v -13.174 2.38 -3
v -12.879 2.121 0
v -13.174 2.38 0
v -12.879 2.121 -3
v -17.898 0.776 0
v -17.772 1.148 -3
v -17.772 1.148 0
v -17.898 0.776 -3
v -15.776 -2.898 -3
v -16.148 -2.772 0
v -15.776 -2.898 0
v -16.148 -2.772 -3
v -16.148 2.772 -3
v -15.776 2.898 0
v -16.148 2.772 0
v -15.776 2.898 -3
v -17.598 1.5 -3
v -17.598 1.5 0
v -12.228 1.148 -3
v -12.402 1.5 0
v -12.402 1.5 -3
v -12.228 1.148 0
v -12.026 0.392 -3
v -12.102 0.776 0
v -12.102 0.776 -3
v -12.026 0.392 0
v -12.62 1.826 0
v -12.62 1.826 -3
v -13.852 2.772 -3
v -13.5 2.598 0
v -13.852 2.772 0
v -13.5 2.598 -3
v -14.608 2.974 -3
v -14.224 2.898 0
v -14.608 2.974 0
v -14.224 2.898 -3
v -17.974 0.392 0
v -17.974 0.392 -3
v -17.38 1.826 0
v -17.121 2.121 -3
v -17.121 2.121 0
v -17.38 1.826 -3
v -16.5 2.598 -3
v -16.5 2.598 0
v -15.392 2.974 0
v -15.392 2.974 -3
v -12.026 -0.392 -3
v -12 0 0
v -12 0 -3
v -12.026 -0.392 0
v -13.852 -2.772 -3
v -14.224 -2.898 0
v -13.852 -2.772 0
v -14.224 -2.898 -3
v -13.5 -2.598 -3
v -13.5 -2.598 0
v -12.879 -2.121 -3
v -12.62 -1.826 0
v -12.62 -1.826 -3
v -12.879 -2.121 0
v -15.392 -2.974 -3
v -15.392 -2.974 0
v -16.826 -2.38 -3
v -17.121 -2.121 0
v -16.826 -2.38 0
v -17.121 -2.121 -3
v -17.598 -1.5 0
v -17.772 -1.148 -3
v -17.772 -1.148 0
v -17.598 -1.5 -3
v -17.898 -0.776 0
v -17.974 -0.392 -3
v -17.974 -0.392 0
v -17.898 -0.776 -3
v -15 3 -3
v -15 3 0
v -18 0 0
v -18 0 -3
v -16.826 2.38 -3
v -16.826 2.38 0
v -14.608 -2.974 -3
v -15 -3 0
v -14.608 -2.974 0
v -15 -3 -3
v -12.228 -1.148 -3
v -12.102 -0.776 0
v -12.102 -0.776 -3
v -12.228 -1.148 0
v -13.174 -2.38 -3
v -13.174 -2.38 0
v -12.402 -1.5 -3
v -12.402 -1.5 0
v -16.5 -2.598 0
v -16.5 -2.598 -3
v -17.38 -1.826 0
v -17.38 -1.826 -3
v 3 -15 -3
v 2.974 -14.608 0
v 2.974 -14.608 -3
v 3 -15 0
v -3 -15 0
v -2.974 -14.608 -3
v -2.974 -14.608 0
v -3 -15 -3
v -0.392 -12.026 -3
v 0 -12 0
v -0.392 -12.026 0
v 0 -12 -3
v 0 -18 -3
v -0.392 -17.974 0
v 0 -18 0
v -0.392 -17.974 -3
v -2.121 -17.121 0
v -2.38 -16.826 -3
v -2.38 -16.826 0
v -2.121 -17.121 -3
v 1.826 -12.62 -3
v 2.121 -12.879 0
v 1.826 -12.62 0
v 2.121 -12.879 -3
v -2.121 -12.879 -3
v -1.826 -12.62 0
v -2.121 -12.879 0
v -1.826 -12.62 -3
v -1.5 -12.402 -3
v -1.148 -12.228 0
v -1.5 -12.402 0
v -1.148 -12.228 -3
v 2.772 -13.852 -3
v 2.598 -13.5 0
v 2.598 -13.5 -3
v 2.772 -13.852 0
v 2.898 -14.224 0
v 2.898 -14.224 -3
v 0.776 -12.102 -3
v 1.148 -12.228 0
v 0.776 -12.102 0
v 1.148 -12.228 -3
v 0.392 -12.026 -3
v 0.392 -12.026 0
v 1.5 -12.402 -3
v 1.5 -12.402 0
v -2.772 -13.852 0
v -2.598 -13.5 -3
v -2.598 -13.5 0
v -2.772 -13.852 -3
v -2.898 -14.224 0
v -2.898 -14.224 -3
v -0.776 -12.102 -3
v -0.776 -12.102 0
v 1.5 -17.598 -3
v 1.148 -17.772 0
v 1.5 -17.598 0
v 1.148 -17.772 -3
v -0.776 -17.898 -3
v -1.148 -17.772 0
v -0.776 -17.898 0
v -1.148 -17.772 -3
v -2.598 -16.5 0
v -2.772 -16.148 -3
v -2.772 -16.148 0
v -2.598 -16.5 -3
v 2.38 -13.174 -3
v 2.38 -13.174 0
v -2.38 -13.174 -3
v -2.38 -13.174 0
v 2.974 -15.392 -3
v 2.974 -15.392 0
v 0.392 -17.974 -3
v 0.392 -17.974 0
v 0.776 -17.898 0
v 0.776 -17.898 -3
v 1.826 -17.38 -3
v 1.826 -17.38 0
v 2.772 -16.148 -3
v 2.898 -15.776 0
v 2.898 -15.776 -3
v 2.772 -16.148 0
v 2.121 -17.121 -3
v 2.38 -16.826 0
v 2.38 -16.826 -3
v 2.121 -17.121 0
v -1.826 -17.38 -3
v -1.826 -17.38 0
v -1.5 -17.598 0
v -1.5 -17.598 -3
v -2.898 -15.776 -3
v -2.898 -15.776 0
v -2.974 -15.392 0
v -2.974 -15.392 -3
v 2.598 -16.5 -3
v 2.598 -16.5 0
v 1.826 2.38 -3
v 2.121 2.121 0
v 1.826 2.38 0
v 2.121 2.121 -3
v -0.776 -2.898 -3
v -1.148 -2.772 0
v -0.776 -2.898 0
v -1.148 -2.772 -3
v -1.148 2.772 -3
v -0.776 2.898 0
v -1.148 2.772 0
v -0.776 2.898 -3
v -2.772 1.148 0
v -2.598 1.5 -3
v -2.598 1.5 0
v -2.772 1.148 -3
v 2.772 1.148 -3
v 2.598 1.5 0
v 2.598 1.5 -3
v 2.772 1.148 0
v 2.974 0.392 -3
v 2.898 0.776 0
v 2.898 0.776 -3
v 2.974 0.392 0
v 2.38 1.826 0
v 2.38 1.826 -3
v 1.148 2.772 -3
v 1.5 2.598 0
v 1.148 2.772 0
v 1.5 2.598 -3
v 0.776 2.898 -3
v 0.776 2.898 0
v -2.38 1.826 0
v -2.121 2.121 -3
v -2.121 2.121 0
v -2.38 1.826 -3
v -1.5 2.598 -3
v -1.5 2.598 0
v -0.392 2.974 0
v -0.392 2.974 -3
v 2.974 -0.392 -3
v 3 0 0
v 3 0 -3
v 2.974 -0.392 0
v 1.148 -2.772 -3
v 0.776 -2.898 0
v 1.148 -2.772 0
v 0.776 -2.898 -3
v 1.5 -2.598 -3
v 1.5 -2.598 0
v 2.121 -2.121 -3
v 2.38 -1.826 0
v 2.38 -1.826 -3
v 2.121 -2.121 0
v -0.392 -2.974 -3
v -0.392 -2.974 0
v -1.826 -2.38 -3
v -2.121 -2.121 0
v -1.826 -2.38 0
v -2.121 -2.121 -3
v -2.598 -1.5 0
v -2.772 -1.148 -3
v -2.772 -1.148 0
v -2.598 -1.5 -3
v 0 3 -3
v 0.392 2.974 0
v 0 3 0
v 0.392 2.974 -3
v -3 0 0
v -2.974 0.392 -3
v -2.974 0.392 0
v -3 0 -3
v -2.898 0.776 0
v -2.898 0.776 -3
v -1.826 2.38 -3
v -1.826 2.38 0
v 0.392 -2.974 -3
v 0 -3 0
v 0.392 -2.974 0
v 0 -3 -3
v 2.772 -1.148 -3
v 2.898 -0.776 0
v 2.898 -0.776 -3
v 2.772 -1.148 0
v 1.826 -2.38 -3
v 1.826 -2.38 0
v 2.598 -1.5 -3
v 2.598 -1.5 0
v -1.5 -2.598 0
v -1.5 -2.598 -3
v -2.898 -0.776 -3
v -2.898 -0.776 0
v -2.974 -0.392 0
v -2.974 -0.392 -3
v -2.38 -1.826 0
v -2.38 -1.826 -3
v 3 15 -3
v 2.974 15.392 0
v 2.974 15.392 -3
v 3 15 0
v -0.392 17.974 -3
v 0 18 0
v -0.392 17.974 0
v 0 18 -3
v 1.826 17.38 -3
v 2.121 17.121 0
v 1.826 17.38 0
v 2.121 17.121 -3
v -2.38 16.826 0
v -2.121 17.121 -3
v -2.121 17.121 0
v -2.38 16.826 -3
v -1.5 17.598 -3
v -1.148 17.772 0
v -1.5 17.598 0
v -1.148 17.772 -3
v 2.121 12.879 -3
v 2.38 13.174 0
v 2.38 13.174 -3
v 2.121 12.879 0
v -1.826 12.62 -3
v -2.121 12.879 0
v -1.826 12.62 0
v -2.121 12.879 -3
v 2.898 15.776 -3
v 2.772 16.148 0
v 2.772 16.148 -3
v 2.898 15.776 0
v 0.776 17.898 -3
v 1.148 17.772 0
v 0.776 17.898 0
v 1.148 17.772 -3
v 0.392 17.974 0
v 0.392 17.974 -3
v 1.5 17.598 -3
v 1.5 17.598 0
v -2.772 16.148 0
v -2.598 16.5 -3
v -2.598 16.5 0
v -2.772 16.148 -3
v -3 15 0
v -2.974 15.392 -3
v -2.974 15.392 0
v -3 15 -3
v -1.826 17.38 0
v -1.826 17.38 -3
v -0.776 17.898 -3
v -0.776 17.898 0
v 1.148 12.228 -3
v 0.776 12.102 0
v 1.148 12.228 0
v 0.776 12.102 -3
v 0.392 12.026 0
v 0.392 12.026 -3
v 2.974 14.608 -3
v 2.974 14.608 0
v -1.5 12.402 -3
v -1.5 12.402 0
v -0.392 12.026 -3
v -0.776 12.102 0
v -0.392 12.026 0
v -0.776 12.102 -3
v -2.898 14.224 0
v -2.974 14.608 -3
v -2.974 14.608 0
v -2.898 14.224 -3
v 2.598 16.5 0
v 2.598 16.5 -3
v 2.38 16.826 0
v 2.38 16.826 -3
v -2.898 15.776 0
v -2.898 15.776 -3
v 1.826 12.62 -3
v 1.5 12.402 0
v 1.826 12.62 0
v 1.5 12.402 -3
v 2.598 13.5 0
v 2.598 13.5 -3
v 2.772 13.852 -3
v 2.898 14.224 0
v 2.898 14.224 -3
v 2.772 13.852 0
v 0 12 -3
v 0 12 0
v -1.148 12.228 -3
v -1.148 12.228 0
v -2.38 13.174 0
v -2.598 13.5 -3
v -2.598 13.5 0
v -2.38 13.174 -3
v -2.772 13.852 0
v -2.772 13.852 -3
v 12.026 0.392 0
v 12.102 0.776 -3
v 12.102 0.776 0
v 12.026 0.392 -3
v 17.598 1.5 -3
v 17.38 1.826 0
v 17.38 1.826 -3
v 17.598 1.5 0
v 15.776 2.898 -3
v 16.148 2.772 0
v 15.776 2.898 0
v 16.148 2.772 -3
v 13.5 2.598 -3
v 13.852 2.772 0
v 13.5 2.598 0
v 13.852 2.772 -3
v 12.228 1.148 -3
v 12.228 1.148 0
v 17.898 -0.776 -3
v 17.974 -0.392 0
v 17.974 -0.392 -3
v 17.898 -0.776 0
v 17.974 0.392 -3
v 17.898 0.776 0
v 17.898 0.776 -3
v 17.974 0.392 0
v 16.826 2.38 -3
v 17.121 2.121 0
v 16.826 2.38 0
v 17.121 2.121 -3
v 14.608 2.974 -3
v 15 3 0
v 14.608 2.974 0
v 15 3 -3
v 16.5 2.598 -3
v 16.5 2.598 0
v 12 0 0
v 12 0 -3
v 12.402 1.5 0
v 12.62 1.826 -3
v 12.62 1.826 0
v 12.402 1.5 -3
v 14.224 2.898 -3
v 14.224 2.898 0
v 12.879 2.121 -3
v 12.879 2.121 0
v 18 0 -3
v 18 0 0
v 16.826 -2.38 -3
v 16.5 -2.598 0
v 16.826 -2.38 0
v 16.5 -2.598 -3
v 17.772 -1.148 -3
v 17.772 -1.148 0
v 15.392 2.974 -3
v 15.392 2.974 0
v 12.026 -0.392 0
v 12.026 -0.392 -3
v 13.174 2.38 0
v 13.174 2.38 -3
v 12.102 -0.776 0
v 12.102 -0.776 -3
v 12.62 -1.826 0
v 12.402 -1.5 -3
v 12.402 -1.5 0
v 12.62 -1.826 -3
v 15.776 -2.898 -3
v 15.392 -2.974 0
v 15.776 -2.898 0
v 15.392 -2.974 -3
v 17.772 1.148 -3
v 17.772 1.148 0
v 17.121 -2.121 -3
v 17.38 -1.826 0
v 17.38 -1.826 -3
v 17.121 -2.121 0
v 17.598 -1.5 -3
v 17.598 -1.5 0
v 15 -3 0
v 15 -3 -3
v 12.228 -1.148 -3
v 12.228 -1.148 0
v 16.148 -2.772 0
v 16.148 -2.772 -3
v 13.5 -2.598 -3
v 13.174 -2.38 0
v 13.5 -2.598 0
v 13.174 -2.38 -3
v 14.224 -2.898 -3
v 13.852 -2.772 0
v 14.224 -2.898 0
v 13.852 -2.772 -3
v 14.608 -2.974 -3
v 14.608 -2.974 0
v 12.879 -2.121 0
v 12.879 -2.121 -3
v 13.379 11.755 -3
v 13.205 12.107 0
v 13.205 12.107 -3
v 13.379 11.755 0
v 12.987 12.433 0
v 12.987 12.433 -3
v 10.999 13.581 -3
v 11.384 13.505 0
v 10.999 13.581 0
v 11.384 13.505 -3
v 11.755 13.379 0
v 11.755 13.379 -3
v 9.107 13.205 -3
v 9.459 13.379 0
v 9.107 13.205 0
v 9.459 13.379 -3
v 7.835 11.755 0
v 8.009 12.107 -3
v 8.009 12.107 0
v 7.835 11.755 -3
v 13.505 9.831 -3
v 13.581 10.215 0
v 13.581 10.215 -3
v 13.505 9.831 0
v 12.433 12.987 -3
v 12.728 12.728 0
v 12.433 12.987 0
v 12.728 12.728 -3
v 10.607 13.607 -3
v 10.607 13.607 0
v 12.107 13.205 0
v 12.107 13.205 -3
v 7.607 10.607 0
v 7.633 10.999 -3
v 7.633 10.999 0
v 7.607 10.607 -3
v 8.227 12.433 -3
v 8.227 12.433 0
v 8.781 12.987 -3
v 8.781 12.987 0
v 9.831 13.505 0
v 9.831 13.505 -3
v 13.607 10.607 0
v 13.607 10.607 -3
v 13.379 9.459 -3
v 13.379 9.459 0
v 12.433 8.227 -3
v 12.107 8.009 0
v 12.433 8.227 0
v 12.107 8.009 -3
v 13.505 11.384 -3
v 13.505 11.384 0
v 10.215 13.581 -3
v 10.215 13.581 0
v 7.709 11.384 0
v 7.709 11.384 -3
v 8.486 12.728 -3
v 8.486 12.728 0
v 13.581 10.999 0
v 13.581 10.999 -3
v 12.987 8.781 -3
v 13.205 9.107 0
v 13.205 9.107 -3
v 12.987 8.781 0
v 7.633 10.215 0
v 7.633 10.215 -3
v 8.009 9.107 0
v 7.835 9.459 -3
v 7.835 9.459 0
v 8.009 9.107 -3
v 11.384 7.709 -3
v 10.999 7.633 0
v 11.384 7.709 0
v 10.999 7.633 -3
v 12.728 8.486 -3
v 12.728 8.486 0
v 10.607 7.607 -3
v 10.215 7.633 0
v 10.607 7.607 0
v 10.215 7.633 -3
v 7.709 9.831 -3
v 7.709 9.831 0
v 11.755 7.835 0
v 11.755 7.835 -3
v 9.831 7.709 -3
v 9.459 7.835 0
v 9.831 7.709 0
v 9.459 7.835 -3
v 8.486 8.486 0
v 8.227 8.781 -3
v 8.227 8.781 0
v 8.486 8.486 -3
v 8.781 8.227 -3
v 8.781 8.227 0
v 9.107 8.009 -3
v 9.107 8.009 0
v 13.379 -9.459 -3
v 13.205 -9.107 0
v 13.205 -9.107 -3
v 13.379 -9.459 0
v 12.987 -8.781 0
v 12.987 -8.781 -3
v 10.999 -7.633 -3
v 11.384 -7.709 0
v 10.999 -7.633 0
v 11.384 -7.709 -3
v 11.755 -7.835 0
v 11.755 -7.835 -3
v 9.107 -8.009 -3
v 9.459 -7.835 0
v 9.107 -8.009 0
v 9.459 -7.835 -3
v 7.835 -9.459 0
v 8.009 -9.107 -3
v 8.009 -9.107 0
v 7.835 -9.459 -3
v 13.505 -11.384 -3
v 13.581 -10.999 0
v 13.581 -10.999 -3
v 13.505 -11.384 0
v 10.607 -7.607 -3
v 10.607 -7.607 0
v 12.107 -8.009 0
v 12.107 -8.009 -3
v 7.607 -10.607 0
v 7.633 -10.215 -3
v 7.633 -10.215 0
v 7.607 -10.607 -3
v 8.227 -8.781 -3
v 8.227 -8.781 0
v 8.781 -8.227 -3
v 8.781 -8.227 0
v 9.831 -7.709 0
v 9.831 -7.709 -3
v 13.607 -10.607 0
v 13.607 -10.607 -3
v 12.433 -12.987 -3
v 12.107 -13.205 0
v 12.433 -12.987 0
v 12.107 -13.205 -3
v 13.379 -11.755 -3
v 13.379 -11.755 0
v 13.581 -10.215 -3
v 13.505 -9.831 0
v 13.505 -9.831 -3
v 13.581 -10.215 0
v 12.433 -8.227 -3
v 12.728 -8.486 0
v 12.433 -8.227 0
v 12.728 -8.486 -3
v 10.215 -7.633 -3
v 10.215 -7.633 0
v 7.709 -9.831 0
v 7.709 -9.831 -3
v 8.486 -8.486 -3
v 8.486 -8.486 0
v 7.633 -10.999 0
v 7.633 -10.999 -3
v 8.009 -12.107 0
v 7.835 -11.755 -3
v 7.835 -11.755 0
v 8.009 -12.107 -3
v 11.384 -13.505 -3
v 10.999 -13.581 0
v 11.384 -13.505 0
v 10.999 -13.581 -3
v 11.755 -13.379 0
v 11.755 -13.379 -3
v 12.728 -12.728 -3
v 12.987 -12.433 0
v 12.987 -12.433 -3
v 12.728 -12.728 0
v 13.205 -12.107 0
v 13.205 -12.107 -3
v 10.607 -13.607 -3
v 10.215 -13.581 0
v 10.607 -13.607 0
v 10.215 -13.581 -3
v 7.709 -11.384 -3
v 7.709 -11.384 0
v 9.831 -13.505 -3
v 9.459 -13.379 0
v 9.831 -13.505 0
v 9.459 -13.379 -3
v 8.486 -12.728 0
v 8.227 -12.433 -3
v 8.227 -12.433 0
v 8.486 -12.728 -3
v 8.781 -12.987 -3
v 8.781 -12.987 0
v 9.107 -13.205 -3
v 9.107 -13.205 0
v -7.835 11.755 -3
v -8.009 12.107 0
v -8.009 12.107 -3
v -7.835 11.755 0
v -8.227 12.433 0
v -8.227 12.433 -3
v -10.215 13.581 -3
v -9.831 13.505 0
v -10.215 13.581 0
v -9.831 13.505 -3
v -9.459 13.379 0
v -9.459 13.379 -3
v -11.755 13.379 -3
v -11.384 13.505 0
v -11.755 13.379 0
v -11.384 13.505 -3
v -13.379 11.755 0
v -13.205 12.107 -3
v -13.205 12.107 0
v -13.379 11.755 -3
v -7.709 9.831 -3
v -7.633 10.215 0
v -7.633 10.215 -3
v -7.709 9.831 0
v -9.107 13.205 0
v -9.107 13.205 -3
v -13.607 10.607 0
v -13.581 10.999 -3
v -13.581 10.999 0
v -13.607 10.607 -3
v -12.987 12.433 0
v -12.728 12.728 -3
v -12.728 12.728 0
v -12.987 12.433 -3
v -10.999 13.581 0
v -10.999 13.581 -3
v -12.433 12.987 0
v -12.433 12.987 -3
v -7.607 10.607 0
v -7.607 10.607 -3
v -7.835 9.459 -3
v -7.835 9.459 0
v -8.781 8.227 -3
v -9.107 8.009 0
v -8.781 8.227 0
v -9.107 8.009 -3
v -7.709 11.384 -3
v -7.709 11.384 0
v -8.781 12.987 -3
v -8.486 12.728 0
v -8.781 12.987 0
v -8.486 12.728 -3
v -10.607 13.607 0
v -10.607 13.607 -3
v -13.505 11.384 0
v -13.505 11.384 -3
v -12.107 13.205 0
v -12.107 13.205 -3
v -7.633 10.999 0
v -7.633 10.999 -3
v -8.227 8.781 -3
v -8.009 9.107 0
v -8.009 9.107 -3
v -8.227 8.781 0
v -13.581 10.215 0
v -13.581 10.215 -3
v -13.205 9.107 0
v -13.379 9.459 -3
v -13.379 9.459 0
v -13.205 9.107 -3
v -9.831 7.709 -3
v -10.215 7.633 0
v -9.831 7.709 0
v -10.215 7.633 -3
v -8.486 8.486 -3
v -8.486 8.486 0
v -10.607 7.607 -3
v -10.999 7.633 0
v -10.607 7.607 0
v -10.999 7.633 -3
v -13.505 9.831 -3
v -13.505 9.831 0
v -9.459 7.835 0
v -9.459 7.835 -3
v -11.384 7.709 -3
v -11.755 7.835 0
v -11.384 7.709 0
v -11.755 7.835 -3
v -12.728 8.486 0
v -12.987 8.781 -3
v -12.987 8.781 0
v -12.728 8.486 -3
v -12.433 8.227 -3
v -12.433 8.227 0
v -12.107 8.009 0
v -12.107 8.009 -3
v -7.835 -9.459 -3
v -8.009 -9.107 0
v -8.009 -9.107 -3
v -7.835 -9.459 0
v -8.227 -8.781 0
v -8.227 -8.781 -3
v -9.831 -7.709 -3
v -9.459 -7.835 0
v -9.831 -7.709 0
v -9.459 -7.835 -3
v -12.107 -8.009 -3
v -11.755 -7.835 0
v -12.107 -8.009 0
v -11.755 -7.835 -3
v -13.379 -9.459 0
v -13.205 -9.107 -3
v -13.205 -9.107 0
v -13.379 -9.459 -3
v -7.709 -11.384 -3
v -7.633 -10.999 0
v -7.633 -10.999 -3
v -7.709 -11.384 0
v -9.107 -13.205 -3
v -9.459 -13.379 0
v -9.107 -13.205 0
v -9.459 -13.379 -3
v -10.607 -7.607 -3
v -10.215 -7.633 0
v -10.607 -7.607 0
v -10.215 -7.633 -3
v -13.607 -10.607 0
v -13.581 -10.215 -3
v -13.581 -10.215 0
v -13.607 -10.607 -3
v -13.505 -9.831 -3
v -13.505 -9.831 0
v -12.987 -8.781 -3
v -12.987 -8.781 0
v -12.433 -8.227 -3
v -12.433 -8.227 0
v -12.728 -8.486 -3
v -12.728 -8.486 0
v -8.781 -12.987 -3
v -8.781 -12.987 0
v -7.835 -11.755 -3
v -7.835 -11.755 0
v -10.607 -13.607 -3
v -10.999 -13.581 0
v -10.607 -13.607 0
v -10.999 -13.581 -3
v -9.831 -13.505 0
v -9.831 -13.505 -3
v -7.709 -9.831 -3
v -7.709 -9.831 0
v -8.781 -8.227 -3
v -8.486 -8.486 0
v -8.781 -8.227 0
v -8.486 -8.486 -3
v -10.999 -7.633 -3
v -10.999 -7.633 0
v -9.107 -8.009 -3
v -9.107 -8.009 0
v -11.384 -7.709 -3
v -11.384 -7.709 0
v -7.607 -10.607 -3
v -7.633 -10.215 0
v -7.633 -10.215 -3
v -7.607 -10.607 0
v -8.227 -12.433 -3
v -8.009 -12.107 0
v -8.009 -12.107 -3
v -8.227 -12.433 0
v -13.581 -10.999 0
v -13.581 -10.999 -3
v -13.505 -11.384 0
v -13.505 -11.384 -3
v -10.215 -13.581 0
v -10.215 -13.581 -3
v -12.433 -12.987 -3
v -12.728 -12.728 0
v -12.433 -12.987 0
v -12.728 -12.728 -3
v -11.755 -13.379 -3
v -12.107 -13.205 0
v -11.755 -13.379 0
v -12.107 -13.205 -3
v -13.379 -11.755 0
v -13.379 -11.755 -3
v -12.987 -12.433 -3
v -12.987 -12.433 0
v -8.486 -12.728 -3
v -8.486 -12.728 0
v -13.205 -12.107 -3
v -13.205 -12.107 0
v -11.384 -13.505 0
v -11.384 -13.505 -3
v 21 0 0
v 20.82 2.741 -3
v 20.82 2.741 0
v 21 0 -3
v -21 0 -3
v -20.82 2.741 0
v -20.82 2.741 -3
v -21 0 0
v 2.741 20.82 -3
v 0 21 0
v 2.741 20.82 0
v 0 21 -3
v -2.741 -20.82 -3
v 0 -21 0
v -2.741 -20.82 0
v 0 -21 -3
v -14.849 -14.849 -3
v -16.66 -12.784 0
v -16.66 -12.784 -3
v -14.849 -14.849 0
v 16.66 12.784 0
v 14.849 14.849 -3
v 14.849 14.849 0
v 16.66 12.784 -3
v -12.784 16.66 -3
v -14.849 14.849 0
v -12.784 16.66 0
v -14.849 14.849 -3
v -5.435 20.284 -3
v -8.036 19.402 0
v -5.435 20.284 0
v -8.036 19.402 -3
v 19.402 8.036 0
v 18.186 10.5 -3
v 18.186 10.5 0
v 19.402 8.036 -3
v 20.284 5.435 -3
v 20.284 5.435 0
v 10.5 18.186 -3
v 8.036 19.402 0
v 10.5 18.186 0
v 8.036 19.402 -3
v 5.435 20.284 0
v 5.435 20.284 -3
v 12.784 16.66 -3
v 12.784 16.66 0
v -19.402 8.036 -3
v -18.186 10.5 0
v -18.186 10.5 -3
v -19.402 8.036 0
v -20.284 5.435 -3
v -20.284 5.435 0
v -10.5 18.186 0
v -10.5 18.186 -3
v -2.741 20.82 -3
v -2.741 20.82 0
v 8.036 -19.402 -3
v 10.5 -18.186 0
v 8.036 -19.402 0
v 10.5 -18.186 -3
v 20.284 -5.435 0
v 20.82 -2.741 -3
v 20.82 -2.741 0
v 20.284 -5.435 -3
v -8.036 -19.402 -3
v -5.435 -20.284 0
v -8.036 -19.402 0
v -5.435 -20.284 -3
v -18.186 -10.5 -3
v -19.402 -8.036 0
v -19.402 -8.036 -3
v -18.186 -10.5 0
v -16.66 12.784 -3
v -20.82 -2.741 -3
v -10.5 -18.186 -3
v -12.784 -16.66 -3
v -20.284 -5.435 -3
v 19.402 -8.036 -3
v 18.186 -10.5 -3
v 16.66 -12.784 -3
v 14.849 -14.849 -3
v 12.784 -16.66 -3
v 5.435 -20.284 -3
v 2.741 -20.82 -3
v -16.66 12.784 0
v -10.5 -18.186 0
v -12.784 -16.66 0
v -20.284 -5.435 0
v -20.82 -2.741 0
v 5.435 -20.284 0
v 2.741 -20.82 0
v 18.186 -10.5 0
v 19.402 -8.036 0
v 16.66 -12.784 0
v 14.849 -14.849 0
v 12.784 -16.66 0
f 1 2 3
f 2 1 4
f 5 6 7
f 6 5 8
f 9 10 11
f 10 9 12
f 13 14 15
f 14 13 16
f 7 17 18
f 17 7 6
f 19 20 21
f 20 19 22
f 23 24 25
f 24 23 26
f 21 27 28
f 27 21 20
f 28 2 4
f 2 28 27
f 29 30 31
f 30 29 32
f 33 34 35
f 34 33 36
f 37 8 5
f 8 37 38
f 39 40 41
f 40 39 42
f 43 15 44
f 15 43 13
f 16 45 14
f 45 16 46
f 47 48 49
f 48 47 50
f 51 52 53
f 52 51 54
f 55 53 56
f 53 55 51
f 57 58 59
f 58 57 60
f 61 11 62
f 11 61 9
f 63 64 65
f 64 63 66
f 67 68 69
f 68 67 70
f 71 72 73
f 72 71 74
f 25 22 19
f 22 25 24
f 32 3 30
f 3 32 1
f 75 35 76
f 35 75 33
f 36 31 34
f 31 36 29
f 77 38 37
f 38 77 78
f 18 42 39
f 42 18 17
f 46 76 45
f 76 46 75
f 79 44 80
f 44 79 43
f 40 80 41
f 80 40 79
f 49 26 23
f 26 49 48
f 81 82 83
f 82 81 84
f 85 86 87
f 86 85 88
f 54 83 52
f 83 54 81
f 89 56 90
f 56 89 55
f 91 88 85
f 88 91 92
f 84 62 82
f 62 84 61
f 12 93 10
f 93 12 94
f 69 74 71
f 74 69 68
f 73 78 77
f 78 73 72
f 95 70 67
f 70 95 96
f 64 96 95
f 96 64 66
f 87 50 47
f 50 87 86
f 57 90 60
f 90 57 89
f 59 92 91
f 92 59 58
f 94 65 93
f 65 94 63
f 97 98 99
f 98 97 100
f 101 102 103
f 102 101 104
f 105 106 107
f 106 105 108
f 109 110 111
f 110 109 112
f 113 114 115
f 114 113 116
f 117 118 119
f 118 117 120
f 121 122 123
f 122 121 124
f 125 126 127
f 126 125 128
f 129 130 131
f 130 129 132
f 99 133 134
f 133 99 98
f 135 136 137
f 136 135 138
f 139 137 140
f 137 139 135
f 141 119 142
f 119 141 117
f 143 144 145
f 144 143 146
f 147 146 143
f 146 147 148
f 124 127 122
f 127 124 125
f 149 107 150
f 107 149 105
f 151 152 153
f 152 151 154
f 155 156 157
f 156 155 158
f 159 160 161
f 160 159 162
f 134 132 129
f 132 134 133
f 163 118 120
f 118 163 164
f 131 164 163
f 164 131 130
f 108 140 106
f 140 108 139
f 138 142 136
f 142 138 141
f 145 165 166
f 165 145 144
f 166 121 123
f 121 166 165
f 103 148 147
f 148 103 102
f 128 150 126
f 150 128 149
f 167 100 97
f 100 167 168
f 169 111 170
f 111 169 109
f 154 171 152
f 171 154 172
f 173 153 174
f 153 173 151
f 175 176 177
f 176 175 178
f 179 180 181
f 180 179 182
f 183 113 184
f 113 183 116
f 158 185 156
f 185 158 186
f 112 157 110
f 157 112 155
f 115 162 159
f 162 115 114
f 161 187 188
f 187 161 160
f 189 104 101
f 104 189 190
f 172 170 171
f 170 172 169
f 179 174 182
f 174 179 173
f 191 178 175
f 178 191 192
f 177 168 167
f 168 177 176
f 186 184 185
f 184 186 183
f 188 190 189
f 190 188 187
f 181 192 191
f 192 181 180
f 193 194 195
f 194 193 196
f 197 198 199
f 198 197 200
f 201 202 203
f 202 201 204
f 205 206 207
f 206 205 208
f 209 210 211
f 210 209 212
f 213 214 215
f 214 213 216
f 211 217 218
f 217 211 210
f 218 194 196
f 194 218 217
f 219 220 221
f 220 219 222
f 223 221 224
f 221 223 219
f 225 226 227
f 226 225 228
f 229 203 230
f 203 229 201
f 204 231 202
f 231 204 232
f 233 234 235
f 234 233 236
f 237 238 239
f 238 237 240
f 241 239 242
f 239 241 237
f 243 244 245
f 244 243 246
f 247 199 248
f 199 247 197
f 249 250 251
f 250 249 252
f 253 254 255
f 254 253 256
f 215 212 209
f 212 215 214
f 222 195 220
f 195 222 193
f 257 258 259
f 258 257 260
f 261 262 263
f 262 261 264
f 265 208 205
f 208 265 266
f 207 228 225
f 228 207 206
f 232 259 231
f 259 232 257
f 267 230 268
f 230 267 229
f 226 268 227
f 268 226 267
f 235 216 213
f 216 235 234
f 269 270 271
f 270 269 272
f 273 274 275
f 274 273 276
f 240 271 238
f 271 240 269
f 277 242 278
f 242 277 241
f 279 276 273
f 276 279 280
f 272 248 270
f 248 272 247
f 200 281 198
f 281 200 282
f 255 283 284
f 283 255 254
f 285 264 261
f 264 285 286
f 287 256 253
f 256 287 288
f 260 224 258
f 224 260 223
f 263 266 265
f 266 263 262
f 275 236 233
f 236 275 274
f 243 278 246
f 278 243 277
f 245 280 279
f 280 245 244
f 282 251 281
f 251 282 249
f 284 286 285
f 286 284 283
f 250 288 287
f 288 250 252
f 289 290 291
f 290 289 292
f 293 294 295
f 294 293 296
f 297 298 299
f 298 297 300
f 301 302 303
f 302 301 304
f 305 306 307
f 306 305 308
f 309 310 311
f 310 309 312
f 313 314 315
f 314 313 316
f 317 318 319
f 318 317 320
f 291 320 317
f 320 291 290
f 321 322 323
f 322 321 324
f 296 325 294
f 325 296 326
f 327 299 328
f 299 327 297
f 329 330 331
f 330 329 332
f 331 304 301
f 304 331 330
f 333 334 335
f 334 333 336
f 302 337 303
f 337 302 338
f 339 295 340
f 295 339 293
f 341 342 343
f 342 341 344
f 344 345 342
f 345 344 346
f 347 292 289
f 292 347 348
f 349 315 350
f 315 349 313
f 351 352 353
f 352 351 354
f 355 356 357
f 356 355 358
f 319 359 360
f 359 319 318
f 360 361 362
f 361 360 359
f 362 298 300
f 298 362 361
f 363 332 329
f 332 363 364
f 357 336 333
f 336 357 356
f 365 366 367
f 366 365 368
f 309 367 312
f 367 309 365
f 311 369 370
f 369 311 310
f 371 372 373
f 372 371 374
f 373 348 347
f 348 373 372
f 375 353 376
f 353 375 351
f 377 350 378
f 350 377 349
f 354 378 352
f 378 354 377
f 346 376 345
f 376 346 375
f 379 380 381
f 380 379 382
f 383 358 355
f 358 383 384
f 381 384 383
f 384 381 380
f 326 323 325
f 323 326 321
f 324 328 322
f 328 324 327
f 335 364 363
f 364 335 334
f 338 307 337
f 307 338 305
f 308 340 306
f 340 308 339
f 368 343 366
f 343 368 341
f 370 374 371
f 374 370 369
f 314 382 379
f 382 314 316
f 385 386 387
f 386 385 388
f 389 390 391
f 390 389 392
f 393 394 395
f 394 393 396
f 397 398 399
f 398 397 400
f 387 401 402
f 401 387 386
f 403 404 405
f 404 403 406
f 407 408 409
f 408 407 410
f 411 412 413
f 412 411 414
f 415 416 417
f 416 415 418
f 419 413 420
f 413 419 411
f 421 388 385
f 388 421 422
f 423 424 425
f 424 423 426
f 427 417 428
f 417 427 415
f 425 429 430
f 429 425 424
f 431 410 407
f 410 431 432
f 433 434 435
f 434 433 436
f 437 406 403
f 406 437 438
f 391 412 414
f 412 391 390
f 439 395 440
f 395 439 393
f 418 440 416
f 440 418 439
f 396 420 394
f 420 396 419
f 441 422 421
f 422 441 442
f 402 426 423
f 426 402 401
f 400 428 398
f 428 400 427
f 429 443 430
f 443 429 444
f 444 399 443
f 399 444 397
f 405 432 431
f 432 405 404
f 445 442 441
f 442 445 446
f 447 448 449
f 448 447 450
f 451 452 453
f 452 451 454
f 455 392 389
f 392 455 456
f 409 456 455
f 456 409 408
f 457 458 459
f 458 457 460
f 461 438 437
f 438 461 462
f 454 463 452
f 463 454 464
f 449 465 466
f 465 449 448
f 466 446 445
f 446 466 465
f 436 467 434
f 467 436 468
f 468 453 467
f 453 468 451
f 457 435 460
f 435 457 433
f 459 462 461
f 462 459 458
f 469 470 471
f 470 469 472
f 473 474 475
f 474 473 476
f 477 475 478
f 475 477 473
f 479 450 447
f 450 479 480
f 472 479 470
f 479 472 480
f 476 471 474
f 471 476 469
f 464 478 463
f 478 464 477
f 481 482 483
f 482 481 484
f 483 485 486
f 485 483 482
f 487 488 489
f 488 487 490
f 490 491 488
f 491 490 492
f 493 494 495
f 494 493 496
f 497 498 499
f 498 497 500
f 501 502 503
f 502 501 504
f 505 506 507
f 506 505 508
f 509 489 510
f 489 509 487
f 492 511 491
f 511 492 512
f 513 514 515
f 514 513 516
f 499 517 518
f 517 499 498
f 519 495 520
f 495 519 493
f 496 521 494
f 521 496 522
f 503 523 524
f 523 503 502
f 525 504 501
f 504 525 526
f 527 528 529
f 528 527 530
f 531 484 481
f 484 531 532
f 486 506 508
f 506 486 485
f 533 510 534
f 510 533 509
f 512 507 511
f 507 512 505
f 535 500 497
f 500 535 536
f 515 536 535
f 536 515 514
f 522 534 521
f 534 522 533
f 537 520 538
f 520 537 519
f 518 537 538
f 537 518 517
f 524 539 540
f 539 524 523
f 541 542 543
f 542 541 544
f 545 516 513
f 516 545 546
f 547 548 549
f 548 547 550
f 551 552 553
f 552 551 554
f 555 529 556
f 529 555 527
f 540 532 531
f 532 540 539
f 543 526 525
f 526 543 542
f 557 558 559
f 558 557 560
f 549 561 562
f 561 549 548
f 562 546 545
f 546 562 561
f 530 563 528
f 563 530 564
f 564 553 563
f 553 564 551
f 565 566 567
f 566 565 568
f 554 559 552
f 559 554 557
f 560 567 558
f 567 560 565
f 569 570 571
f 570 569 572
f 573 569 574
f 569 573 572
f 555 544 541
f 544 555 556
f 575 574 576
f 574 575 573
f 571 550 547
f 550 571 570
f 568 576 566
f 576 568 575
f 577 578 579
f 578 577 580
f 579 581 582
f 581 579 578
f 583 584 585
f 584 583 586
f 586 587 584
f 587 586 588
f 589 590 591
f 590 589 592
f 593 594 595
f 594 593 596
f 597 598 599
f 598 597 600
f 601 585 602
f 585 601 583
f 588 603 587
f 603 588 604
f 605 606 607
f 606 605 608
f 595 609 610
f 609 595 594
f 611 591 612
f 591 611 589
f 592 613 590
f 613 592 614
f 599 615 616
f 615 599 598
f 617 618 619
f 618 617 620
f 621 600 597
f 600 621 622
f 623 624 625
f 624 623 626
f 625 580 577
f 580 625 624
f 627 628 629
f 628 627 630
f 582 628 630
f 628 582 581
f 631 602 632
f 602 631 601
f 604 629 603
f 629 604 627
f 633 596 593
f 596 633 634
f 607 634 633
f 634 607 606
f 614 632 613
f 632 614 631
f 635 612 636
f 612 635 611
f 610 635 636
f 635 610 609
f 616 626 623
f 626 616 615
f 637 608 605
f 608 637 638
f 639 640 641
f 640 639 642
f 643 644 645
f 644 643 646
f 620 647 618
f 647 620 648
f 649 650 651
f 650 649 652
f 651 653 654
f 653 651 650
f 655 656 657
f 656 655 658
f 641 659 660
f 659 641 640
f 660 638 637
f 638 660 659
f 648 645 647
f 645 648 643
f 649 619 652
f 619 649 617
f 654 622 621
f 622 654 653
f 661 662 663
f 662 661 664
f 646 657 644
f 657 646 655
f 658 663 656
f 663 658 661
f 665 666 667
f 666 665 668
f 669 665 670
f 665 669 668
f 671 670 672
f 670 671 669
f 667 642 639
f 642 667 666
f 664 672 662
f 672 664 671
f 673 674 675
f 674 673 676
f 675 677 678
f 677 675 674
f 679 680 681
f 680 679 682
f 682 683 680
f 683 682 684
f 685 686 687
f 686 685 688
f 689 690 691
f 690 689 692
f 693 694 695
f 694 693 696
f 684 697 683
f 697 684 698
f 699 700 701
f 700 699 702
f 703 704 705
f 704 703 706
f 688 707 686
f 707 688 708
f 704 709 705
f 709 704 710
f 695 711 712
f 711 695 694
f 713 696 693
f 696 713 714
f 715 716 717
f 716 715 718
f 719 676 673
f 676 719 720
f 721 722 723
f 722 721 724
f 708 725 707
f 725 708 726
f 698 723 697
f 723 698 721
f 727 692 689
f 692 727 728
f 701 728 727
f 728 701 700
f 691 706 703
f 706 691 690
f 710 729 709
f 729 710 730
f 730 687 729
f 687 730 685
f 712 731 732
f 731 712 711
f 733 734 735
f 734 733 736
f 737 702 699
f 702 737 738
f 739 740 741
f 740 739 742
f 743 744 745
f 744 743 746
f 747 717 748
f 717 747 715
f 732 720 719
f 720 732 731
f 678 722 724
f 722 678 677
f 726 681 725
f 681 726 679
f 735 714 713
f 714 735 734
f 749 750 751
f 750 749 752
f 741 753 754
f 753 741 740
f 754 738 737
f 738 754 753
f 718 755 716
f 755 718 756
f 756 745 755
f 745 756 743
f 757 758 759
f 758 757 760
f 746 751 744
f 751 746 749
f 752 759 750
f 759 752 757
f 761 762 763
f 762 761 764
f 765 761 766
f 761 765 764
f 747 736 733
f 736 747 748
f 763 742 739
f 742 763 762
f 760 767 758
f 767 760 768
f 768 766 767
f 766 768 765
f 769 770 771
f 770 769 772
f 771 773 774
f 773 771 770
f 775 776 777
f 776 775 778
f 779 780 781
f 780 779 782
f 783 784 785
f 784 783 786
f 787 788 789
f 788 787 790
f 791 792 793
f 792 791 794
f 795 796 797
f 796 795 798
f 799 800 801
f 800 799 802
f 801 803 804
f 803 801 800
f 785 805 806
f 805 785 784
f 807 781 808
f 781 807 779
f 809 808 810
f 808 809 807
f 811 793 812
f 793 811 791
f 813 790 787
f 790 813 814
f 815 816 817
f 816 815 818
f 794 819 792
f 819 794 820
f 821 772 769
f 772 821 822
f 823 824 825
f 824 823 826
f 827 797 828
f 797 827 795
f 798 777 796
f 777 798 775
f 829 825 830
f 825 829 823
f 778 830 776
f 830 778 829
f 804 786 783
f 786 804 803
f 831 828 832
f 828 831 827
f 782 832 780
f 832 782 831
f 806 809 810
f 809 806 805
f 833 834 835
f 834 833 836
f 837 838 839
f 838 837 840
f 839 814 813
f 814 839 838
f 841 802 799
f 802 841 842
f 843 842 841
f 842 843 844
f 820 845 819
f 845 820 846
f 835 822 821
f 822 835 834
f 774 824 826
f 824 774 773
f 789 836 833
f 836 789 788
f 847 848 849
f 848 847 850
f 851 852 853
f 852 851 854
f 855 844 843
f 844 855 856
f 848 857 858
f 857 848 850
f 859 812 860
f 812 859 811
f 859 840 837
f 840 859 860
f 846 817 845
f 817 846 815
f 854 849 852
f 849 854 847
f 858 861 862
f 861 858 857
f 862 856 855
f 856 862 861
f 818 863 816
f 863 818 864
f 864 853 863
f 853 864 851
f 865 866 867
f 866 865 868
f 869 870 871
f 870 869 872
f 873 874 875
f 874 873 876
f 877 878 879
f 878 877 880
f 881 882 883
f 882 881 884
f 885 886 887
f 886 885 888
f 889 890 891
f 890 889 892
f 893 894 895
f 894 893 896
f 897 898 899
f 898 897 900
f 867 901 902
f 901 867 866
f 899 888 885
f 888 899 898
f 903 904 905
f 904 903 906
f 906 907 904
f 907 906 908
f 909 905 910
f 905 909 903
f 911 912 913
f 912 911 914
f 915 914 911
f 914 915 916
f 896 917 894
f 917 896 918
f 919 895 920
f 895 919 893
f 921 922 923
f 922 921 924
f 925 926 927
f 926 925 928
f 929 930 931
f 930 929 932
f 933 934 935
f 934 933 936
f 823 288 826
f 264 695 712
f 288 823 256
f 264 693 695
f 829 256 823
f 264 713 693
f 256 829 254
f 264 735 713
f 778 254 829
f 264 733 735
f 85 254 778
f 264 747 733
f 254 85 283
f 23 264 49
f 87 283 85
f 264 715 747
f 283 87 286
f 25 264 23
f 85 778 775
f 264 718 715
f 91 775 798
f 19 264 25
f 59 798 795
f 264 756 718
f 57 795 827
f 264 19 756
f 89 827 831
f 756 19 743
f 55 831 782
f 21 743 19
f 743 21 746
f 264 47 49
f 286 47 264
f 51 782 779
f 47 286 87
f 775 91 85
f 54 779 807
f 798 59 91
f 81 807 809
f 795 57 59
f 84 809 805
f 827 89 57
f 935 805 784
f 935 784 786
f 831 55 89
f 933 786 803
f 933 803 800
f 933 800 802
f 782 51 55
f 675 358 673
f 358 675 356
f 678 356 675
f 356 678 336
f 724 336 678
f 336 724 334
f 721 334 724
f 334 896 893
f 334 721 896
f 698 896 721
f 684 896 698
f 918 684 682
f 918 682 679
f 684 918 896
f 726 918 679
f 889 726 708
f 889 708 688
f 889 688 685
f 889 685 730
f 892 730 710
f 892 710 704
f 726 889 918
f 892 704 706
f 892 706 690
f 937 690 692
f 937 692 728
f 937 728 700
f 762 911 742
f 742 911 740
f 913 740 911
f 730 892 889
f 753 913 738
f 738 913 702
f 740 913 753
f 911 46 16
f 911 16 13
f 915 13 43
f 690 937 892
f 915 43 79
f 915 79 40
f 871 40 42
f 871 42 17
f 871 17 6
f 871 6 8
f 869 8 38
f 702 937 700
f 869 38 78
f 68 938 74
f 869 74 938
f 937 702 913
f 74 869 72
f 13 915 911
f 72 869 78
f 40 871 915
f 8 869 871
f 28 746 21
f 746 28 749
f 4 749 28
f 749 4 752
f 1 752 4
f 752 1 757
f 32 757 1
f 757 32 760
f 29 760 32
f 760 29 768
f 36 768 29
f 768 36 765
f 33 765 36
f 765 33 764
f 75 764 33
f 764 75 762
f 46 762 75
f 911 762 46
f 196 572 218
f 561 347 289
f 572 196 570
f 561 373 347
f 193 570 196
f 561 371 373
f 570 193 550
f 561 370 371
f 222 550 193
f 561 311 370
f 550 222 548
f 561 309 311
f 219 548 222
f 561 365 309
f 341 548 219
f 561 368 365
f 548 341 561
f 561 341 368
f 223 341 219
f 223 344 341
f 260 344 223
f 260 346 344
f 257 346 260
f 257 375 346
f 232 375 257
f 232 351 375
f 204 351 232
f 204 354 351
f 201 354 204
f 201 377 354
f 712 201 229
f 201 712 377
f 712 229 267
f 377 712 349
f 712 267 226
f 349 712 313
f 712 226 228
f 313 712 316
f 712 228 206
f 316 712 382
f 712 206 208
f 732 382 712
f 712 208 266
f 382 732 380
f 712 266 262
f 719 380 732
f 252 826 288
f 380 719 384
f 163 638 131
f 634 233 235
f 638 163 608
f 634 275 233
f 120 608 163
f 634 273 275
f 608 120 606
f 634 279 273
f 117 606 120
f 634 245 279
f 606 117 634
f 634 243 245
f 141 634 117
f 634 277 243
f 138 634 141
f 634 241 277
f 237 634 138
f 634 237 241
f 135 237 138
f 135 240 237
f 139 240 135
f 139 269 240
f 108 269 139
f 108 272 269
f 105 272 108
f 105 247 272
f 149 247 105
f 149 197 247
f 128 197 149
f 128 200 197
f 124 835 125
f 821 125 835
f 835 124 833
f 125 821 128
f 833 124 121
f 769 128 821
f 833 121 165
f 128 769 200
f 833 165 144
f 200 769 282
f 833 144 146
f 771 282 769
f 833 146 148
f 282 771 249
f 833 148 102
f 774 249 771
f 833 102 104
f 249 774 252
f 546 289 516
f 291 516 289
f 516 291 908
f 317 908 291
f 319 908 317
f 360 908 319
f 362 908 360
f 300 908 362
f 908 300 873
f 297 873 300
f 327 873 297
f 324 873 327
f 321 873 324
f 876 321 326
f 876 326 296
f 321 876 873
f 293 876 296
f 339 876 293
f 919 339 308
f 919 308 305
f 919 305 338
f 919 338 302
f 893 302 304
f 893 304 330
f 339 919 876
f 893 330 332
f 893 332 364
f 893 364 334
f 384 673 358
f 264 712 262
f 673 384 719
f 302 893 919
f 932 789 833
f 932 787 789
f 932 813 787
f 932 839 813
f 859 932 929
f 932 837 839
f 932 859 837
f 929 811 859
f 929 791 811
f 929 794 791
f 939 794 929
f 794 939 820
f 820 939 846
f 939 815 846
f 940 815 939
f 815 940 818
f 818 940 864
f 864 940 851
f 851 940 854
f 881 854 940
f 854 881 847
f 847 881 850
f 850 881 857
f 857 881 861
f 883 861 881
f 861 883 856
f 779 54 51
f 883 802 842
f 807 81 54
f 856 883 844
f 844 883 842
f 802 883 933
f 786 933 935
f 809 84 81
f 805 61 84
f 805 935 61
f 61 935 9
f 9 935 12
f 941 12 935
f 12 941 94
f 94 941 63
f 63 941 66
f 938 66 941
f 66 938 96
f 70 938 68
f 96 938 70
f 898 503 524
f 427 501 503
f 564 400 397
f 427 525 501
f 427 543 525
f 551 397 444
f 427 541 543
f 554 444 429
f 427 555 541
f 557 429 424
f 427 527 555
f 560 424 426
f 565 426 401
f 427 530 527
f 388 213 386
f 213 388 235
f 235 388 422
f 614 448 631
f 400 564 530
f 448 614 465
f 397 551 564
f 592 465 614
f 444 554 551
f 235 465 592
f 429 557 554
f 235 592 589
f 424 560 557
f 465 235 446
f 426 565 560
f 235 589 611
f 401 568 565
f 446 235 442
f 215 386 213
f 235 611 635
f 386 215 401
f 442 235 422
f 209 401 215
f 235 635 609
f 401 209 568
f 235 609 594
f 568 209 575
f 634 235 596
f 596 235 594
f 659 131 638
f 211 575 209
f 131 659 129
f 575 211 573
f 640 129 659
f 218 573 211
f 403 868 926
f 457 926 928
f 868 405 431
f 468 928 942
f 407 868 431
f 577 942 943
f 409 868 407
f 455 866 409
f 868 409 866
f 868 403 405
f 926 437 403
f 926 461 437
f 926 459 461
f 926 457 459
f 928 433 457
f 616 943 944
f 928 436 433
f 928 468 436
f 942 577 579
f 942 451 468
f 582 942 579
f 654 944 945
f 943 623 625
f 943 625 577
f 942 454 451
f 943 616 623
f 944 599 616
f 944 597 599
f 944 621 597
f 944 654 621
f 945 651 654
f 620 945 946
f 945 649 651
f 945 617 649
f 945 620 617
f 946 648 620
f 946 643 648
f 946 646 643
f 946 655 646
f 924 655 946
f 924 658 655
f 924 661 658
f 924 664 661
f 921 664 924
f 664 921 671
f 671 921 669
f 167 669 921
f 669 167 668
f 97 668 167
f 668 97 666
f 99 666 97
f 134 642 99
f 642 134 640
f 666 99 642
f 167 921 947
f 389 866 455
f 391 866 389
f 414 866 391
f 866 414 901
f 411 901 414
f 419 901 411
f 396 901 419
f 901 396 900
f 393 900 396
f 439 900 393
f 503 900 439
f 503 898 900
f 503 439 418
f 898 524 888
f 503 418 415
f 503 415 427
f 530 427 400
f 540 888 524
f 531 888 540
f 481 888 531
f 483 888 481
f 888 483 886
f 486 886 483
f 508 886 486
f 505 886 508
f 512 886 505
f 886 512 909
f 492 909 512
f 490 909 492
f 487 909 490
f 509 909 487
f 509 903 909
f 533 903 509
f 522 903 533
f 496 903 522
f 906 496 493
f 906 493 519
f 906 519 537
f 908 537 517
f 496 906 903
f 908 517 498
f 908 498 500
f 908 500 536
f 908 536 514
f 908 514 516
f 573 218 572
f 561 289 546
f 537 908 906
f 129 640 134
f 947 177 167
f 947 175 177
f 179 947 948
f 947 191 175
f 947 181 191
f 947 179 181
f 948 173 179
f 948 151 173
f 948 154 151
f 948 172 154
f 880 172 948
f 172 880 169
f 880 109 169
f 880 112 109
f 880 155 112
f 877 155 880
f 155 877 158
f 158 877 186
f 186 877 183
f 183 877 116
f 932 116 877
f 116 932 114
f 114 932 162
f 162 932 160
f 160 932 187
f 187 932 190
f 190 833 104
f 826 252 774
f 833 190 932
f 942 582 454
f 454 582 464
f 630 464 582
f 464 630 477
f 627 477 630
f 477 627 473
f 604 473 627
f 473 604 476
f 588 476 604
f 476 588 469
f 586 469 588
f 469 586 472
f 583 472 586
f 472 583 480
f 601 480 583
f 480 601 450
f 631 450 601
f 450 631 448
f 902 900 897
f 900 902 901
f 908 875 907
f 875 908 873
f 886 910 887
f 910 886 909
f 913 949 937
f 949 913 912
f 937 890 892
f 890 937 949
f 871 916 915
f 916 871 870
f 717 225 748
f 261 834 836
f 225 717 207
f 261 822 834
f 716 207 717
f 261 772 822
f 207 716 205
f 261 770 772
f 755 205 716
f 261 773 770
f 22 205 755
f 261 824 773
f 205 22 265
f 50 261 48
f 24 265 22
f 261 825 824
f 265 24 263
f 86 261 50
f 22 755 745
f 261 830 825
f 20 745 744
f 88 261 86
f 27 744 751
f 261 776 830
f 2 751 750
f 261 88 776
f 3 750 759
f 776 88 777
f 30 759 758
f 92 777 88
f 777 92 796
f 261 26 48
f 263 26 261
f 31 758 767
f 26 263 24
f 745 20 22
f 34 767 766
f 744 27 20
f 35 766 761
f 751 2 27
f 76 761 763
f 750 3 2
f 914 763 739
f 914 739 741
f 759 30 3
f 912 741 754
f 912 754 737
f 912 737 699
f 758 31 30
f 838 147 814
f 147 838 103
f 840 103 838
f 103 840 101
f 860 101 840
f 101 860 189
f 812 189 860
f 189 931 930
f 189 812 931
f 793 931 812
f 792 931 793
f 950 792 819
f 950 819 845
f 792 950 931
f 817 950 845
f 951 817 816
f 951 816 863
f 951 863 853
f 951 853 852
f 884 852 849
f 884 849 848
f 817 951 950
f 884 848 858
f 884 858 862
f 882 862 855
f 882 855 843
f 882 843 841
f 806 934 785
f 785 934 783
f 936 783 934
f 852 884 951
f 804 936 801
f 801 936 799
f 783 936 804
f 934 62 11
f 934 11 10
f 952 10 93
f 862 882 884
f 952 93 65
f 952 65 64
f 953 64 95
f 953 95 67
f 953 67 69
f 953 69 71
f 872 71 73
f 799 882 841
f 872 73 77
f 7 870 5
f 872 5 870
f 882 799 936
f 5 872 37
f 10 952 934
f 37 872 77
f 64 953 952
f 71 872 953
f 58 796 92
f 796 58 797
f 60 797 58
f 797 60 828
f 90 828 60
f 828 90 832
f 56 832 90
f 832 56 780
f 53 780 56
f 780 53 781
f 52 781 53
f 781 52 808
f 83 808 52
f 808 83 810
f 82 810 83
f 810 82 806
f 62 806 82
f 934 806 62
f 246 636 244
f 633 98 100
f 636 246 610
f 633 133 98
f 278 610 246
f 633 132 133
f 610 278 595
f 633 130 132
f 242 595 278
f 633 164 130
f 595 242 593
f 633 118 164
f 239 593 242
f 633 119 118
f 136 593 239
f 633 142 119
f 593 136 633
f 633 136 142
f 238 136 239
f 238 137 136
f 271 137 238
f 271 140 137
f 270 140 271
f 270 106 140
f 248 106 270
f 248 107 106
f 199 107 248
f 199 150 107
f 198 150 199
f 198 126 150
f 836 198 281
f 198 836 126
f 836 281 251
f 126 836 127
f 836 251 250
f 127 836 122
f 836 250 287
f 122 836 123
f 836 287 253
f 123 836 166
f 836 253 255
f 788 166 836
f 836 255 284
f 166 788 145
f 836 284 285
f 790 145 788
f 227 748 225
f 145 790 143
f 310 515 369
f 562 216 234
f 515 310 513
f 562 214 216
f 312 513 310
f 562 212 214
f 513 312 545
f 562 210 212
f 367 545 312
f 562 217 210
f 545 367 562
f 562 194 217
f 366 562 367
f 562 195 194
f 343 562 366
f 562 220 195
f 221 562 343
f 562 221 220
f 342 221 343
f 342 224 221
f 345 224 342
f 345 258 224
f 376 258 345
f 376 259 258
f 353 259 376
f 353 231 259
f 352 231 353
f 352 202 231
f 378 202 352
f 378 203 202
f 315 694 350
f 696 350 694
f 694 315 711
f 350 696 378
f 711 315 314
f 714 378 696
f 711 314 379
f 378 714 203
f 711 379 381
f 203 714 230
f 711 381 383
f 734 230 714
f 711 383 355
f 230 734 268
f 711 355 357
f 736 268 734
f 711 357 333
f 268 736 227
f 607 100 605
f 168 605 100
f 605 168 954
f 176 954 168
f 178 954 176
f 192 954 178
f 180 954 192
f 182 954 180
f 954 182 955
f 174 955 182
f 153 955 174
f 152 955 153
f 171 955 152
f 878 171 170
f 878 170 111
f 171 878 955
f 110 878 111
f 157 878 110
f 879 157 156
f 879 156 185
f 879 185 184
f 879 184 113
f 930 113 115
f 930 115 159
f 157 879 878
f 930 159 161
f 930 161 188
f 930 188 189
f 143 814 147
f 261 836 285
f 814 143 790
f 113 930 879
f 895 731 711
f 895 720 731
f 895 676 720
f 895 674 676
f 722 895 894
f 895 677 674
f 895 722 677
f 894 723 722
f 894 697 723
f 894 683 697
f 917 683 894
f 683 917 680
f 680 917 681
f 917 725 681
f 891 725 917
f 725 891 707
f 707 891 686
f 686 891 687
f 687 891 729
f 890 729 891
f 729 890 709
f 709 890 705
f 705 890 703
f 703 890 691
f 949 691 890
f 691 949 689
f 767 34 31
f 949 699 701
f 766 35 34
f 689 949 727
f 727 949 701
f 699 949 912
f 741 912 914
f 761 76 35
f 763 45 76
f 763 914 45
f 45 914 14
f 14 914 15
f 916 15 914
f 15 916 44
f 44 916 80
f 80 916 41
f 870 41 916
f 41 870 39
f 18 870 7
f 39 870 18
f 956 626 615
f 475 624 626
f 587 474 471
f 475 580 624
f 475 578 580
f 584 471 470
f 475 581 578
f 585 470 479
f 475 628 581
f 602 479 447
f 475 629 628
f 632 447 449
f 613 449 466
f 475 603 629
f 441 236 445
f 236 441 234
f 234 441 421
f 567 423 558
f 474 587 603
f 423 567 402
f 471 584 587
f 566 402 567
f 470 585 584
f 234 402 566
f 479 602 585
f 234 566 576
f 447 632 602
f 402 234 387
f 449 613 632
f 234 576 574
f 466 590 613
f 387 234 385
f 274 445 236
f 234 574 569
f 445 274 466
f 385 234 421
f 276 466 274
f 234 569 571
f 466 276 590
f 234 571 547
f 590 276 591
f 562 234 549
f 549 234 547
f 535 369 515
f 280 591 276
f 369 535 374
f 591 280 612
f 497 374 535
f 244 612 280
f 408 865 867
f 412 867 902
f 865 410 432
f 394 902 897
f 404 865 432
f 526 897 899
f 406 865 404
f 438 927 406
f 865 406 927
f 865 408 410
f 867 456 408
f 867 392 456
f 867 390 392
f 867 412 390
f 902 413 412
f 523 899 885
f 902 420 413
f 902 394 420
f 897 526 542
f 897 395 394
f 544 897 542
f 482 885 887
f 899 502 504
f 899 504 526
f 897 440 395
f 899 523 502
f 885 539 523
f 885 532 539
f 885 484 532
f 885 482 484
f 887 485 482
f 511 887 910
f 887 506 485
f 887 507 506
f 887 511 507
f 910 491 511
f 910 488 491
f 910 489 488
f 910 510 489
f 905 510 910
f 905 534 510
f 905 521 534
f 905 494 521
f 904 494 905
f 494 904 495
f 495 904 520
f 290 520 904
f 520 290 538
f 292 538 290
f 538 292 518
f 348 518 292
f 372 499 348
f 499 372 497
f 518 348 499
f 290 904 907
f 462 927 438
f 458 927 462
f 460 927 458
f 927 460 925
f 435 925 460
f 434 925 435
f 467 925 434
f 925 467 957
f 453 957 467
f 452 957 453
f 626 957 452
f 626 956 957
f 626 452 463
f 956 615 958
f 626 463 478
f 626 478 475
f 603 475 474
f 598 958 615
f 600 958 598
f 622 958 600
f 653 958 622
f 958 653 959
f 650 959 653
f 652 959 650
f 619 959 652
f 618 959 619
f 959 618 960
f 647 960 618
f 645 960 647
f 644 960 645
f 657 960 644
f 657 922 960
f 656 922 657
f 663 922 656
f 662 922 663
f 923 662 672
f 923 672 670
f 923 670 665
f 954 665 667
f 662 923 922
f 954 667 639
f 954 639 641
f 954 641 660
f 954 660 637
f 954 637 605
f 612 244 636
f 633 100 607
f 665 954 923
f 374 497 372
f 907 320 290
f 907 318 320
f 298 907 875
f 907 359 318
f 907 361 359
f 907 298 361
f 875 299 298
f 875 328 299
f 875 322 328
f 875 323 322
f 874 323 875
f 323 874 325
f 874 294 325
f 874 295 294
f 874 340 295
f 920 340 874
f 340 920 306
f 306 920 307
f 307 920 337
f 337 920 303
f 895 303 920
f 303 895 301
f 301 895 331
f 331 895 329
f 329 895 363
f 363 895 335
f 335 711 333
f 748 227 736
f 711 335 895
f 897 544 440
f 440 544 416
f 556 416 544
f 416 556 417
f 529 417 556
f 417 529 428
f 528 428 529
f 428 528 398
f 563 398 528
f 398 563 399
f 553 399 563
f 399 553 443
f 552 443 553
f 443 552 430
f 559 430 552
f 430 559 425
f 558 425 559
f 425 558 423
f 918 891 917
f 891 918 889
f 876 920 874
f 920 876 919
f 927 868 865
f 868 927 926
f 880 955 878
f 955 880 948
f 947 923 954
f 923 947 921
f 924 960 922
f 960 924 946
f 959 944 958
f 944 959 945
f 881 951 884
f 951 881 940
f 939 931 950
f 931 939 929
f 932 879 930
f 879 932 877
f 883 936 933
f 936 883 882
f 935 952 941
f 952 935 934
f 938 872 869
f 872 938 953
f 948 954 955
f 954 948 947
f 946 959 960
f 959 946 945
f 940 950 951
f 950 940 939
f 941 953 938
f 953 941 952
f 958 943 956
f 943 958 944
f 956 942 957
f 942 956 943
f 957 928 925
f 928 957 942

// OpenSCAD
$fn = 48;


difference() {
	union() {
		color(alpha = 1.0000000000, c = "Gold") {
			translate(v = [0, 0, 0]) {
				rotate(a = [0, 0, 0]) {
					translate(v = [0, 0, -1.5000000000]) {
						cylinder(center = true, h = 3, r = 21.0000000000);
					}
				}
			}
		}
	}
	union() {
		color(alpha = 1.0000000000, c = "Gold") {
			translate(v = [-15.0000000000, 0.0000000000, 0]) {
				rotate(a = [0, 0, 0]) {
					translate(v = [0, 0, -250]) {
						cylinder(h = 500, r = 3.0000000000);
					}
				}
			}
		}
		color(alpha = 1.0000000000, c = "Gold") {
			translate(v = [0.0000000000, -15.0000000000, 0]) {
				rotate(a = [0, 0, 0]) {
					translate(v = [0, 0, -250]) {
						cylinder(h = 500, r = 3.0000000000);
					}
				}
			}
		}
		color(alpha = 1.0000000000, c = "Gold") {
			translate(v = [0.0000000000, 0.0000000000, 0]) {
				rotate(a = [0, 0, 0]) {
					translate(v = [0, 0, -250]) {
						cylinder(h = 500, r = 3.0000000000);
					}
				}
			}
		}
		color(alpha = 1.0000000000, c = "Gold") {
			translate(v = [0.0000000000, 15.0000000000, 0]) {
				rotate(a = [0, 0, 0]) {
					translate(v = [0, 0, -250]) {
						cylinder(h = 500, r = 3.0000000000);
					}
				}
			}
		}
		color(alpha = 1.0000000000, c = "Gold") {
			translate(v = [15.0000000000, 0.0000000000, 0]) {
				rotate(a = [0, 0, 0]) {
					translate(v = [0, 0, -250]) {
						cylinder(h = 500, r = 3.0000000000);
					}
				}
			}
		}
		color(alpha = 1.0000000000, c = "Gold") {
			translate(v = [10.6070000000, 10.6070000000, 0]) {
				rotate(a = [0, 0, 0]) {
					translate(v = [0, 0, -250]) {
						cylinder(h = 500, r = 3.0000000000);
					}
				}
			}
		}
		color(alpha = 1.0000000000, c = "Gold") {
			translate(v = [10.6070000000, -10.6070000000, 0]) {
				rotate(a = [0, 0, 0]) {
					translate(v = [0, 0, -250]) {
						cylinder(h = 500, r = 3.0000000000);
					}
				}
			}
		}
		color(alpha = 1.0000000000, c = "Gold") {
			translate(v = [-10.6070000000, 10.6070000000, 0]) {
				rotate(a = [0, 0, 0]) {
					translate(v = [0, 0, -250]) {
						cylinder(h = 500, r = 3.0000000000);
					}
				}
			}
		}
		color(alpha = 1.0000000000, c = "Gold") {
			translate(v = [-10.6070000000, -10.6070000000, 0]) {
				rotate(a = [0, 0, 0]) {
					translate(v = [0, 0, -250]) {
						cylinder(h = 500, r = 3.0000000000);
					}
				}
			}
		}
	}
}
